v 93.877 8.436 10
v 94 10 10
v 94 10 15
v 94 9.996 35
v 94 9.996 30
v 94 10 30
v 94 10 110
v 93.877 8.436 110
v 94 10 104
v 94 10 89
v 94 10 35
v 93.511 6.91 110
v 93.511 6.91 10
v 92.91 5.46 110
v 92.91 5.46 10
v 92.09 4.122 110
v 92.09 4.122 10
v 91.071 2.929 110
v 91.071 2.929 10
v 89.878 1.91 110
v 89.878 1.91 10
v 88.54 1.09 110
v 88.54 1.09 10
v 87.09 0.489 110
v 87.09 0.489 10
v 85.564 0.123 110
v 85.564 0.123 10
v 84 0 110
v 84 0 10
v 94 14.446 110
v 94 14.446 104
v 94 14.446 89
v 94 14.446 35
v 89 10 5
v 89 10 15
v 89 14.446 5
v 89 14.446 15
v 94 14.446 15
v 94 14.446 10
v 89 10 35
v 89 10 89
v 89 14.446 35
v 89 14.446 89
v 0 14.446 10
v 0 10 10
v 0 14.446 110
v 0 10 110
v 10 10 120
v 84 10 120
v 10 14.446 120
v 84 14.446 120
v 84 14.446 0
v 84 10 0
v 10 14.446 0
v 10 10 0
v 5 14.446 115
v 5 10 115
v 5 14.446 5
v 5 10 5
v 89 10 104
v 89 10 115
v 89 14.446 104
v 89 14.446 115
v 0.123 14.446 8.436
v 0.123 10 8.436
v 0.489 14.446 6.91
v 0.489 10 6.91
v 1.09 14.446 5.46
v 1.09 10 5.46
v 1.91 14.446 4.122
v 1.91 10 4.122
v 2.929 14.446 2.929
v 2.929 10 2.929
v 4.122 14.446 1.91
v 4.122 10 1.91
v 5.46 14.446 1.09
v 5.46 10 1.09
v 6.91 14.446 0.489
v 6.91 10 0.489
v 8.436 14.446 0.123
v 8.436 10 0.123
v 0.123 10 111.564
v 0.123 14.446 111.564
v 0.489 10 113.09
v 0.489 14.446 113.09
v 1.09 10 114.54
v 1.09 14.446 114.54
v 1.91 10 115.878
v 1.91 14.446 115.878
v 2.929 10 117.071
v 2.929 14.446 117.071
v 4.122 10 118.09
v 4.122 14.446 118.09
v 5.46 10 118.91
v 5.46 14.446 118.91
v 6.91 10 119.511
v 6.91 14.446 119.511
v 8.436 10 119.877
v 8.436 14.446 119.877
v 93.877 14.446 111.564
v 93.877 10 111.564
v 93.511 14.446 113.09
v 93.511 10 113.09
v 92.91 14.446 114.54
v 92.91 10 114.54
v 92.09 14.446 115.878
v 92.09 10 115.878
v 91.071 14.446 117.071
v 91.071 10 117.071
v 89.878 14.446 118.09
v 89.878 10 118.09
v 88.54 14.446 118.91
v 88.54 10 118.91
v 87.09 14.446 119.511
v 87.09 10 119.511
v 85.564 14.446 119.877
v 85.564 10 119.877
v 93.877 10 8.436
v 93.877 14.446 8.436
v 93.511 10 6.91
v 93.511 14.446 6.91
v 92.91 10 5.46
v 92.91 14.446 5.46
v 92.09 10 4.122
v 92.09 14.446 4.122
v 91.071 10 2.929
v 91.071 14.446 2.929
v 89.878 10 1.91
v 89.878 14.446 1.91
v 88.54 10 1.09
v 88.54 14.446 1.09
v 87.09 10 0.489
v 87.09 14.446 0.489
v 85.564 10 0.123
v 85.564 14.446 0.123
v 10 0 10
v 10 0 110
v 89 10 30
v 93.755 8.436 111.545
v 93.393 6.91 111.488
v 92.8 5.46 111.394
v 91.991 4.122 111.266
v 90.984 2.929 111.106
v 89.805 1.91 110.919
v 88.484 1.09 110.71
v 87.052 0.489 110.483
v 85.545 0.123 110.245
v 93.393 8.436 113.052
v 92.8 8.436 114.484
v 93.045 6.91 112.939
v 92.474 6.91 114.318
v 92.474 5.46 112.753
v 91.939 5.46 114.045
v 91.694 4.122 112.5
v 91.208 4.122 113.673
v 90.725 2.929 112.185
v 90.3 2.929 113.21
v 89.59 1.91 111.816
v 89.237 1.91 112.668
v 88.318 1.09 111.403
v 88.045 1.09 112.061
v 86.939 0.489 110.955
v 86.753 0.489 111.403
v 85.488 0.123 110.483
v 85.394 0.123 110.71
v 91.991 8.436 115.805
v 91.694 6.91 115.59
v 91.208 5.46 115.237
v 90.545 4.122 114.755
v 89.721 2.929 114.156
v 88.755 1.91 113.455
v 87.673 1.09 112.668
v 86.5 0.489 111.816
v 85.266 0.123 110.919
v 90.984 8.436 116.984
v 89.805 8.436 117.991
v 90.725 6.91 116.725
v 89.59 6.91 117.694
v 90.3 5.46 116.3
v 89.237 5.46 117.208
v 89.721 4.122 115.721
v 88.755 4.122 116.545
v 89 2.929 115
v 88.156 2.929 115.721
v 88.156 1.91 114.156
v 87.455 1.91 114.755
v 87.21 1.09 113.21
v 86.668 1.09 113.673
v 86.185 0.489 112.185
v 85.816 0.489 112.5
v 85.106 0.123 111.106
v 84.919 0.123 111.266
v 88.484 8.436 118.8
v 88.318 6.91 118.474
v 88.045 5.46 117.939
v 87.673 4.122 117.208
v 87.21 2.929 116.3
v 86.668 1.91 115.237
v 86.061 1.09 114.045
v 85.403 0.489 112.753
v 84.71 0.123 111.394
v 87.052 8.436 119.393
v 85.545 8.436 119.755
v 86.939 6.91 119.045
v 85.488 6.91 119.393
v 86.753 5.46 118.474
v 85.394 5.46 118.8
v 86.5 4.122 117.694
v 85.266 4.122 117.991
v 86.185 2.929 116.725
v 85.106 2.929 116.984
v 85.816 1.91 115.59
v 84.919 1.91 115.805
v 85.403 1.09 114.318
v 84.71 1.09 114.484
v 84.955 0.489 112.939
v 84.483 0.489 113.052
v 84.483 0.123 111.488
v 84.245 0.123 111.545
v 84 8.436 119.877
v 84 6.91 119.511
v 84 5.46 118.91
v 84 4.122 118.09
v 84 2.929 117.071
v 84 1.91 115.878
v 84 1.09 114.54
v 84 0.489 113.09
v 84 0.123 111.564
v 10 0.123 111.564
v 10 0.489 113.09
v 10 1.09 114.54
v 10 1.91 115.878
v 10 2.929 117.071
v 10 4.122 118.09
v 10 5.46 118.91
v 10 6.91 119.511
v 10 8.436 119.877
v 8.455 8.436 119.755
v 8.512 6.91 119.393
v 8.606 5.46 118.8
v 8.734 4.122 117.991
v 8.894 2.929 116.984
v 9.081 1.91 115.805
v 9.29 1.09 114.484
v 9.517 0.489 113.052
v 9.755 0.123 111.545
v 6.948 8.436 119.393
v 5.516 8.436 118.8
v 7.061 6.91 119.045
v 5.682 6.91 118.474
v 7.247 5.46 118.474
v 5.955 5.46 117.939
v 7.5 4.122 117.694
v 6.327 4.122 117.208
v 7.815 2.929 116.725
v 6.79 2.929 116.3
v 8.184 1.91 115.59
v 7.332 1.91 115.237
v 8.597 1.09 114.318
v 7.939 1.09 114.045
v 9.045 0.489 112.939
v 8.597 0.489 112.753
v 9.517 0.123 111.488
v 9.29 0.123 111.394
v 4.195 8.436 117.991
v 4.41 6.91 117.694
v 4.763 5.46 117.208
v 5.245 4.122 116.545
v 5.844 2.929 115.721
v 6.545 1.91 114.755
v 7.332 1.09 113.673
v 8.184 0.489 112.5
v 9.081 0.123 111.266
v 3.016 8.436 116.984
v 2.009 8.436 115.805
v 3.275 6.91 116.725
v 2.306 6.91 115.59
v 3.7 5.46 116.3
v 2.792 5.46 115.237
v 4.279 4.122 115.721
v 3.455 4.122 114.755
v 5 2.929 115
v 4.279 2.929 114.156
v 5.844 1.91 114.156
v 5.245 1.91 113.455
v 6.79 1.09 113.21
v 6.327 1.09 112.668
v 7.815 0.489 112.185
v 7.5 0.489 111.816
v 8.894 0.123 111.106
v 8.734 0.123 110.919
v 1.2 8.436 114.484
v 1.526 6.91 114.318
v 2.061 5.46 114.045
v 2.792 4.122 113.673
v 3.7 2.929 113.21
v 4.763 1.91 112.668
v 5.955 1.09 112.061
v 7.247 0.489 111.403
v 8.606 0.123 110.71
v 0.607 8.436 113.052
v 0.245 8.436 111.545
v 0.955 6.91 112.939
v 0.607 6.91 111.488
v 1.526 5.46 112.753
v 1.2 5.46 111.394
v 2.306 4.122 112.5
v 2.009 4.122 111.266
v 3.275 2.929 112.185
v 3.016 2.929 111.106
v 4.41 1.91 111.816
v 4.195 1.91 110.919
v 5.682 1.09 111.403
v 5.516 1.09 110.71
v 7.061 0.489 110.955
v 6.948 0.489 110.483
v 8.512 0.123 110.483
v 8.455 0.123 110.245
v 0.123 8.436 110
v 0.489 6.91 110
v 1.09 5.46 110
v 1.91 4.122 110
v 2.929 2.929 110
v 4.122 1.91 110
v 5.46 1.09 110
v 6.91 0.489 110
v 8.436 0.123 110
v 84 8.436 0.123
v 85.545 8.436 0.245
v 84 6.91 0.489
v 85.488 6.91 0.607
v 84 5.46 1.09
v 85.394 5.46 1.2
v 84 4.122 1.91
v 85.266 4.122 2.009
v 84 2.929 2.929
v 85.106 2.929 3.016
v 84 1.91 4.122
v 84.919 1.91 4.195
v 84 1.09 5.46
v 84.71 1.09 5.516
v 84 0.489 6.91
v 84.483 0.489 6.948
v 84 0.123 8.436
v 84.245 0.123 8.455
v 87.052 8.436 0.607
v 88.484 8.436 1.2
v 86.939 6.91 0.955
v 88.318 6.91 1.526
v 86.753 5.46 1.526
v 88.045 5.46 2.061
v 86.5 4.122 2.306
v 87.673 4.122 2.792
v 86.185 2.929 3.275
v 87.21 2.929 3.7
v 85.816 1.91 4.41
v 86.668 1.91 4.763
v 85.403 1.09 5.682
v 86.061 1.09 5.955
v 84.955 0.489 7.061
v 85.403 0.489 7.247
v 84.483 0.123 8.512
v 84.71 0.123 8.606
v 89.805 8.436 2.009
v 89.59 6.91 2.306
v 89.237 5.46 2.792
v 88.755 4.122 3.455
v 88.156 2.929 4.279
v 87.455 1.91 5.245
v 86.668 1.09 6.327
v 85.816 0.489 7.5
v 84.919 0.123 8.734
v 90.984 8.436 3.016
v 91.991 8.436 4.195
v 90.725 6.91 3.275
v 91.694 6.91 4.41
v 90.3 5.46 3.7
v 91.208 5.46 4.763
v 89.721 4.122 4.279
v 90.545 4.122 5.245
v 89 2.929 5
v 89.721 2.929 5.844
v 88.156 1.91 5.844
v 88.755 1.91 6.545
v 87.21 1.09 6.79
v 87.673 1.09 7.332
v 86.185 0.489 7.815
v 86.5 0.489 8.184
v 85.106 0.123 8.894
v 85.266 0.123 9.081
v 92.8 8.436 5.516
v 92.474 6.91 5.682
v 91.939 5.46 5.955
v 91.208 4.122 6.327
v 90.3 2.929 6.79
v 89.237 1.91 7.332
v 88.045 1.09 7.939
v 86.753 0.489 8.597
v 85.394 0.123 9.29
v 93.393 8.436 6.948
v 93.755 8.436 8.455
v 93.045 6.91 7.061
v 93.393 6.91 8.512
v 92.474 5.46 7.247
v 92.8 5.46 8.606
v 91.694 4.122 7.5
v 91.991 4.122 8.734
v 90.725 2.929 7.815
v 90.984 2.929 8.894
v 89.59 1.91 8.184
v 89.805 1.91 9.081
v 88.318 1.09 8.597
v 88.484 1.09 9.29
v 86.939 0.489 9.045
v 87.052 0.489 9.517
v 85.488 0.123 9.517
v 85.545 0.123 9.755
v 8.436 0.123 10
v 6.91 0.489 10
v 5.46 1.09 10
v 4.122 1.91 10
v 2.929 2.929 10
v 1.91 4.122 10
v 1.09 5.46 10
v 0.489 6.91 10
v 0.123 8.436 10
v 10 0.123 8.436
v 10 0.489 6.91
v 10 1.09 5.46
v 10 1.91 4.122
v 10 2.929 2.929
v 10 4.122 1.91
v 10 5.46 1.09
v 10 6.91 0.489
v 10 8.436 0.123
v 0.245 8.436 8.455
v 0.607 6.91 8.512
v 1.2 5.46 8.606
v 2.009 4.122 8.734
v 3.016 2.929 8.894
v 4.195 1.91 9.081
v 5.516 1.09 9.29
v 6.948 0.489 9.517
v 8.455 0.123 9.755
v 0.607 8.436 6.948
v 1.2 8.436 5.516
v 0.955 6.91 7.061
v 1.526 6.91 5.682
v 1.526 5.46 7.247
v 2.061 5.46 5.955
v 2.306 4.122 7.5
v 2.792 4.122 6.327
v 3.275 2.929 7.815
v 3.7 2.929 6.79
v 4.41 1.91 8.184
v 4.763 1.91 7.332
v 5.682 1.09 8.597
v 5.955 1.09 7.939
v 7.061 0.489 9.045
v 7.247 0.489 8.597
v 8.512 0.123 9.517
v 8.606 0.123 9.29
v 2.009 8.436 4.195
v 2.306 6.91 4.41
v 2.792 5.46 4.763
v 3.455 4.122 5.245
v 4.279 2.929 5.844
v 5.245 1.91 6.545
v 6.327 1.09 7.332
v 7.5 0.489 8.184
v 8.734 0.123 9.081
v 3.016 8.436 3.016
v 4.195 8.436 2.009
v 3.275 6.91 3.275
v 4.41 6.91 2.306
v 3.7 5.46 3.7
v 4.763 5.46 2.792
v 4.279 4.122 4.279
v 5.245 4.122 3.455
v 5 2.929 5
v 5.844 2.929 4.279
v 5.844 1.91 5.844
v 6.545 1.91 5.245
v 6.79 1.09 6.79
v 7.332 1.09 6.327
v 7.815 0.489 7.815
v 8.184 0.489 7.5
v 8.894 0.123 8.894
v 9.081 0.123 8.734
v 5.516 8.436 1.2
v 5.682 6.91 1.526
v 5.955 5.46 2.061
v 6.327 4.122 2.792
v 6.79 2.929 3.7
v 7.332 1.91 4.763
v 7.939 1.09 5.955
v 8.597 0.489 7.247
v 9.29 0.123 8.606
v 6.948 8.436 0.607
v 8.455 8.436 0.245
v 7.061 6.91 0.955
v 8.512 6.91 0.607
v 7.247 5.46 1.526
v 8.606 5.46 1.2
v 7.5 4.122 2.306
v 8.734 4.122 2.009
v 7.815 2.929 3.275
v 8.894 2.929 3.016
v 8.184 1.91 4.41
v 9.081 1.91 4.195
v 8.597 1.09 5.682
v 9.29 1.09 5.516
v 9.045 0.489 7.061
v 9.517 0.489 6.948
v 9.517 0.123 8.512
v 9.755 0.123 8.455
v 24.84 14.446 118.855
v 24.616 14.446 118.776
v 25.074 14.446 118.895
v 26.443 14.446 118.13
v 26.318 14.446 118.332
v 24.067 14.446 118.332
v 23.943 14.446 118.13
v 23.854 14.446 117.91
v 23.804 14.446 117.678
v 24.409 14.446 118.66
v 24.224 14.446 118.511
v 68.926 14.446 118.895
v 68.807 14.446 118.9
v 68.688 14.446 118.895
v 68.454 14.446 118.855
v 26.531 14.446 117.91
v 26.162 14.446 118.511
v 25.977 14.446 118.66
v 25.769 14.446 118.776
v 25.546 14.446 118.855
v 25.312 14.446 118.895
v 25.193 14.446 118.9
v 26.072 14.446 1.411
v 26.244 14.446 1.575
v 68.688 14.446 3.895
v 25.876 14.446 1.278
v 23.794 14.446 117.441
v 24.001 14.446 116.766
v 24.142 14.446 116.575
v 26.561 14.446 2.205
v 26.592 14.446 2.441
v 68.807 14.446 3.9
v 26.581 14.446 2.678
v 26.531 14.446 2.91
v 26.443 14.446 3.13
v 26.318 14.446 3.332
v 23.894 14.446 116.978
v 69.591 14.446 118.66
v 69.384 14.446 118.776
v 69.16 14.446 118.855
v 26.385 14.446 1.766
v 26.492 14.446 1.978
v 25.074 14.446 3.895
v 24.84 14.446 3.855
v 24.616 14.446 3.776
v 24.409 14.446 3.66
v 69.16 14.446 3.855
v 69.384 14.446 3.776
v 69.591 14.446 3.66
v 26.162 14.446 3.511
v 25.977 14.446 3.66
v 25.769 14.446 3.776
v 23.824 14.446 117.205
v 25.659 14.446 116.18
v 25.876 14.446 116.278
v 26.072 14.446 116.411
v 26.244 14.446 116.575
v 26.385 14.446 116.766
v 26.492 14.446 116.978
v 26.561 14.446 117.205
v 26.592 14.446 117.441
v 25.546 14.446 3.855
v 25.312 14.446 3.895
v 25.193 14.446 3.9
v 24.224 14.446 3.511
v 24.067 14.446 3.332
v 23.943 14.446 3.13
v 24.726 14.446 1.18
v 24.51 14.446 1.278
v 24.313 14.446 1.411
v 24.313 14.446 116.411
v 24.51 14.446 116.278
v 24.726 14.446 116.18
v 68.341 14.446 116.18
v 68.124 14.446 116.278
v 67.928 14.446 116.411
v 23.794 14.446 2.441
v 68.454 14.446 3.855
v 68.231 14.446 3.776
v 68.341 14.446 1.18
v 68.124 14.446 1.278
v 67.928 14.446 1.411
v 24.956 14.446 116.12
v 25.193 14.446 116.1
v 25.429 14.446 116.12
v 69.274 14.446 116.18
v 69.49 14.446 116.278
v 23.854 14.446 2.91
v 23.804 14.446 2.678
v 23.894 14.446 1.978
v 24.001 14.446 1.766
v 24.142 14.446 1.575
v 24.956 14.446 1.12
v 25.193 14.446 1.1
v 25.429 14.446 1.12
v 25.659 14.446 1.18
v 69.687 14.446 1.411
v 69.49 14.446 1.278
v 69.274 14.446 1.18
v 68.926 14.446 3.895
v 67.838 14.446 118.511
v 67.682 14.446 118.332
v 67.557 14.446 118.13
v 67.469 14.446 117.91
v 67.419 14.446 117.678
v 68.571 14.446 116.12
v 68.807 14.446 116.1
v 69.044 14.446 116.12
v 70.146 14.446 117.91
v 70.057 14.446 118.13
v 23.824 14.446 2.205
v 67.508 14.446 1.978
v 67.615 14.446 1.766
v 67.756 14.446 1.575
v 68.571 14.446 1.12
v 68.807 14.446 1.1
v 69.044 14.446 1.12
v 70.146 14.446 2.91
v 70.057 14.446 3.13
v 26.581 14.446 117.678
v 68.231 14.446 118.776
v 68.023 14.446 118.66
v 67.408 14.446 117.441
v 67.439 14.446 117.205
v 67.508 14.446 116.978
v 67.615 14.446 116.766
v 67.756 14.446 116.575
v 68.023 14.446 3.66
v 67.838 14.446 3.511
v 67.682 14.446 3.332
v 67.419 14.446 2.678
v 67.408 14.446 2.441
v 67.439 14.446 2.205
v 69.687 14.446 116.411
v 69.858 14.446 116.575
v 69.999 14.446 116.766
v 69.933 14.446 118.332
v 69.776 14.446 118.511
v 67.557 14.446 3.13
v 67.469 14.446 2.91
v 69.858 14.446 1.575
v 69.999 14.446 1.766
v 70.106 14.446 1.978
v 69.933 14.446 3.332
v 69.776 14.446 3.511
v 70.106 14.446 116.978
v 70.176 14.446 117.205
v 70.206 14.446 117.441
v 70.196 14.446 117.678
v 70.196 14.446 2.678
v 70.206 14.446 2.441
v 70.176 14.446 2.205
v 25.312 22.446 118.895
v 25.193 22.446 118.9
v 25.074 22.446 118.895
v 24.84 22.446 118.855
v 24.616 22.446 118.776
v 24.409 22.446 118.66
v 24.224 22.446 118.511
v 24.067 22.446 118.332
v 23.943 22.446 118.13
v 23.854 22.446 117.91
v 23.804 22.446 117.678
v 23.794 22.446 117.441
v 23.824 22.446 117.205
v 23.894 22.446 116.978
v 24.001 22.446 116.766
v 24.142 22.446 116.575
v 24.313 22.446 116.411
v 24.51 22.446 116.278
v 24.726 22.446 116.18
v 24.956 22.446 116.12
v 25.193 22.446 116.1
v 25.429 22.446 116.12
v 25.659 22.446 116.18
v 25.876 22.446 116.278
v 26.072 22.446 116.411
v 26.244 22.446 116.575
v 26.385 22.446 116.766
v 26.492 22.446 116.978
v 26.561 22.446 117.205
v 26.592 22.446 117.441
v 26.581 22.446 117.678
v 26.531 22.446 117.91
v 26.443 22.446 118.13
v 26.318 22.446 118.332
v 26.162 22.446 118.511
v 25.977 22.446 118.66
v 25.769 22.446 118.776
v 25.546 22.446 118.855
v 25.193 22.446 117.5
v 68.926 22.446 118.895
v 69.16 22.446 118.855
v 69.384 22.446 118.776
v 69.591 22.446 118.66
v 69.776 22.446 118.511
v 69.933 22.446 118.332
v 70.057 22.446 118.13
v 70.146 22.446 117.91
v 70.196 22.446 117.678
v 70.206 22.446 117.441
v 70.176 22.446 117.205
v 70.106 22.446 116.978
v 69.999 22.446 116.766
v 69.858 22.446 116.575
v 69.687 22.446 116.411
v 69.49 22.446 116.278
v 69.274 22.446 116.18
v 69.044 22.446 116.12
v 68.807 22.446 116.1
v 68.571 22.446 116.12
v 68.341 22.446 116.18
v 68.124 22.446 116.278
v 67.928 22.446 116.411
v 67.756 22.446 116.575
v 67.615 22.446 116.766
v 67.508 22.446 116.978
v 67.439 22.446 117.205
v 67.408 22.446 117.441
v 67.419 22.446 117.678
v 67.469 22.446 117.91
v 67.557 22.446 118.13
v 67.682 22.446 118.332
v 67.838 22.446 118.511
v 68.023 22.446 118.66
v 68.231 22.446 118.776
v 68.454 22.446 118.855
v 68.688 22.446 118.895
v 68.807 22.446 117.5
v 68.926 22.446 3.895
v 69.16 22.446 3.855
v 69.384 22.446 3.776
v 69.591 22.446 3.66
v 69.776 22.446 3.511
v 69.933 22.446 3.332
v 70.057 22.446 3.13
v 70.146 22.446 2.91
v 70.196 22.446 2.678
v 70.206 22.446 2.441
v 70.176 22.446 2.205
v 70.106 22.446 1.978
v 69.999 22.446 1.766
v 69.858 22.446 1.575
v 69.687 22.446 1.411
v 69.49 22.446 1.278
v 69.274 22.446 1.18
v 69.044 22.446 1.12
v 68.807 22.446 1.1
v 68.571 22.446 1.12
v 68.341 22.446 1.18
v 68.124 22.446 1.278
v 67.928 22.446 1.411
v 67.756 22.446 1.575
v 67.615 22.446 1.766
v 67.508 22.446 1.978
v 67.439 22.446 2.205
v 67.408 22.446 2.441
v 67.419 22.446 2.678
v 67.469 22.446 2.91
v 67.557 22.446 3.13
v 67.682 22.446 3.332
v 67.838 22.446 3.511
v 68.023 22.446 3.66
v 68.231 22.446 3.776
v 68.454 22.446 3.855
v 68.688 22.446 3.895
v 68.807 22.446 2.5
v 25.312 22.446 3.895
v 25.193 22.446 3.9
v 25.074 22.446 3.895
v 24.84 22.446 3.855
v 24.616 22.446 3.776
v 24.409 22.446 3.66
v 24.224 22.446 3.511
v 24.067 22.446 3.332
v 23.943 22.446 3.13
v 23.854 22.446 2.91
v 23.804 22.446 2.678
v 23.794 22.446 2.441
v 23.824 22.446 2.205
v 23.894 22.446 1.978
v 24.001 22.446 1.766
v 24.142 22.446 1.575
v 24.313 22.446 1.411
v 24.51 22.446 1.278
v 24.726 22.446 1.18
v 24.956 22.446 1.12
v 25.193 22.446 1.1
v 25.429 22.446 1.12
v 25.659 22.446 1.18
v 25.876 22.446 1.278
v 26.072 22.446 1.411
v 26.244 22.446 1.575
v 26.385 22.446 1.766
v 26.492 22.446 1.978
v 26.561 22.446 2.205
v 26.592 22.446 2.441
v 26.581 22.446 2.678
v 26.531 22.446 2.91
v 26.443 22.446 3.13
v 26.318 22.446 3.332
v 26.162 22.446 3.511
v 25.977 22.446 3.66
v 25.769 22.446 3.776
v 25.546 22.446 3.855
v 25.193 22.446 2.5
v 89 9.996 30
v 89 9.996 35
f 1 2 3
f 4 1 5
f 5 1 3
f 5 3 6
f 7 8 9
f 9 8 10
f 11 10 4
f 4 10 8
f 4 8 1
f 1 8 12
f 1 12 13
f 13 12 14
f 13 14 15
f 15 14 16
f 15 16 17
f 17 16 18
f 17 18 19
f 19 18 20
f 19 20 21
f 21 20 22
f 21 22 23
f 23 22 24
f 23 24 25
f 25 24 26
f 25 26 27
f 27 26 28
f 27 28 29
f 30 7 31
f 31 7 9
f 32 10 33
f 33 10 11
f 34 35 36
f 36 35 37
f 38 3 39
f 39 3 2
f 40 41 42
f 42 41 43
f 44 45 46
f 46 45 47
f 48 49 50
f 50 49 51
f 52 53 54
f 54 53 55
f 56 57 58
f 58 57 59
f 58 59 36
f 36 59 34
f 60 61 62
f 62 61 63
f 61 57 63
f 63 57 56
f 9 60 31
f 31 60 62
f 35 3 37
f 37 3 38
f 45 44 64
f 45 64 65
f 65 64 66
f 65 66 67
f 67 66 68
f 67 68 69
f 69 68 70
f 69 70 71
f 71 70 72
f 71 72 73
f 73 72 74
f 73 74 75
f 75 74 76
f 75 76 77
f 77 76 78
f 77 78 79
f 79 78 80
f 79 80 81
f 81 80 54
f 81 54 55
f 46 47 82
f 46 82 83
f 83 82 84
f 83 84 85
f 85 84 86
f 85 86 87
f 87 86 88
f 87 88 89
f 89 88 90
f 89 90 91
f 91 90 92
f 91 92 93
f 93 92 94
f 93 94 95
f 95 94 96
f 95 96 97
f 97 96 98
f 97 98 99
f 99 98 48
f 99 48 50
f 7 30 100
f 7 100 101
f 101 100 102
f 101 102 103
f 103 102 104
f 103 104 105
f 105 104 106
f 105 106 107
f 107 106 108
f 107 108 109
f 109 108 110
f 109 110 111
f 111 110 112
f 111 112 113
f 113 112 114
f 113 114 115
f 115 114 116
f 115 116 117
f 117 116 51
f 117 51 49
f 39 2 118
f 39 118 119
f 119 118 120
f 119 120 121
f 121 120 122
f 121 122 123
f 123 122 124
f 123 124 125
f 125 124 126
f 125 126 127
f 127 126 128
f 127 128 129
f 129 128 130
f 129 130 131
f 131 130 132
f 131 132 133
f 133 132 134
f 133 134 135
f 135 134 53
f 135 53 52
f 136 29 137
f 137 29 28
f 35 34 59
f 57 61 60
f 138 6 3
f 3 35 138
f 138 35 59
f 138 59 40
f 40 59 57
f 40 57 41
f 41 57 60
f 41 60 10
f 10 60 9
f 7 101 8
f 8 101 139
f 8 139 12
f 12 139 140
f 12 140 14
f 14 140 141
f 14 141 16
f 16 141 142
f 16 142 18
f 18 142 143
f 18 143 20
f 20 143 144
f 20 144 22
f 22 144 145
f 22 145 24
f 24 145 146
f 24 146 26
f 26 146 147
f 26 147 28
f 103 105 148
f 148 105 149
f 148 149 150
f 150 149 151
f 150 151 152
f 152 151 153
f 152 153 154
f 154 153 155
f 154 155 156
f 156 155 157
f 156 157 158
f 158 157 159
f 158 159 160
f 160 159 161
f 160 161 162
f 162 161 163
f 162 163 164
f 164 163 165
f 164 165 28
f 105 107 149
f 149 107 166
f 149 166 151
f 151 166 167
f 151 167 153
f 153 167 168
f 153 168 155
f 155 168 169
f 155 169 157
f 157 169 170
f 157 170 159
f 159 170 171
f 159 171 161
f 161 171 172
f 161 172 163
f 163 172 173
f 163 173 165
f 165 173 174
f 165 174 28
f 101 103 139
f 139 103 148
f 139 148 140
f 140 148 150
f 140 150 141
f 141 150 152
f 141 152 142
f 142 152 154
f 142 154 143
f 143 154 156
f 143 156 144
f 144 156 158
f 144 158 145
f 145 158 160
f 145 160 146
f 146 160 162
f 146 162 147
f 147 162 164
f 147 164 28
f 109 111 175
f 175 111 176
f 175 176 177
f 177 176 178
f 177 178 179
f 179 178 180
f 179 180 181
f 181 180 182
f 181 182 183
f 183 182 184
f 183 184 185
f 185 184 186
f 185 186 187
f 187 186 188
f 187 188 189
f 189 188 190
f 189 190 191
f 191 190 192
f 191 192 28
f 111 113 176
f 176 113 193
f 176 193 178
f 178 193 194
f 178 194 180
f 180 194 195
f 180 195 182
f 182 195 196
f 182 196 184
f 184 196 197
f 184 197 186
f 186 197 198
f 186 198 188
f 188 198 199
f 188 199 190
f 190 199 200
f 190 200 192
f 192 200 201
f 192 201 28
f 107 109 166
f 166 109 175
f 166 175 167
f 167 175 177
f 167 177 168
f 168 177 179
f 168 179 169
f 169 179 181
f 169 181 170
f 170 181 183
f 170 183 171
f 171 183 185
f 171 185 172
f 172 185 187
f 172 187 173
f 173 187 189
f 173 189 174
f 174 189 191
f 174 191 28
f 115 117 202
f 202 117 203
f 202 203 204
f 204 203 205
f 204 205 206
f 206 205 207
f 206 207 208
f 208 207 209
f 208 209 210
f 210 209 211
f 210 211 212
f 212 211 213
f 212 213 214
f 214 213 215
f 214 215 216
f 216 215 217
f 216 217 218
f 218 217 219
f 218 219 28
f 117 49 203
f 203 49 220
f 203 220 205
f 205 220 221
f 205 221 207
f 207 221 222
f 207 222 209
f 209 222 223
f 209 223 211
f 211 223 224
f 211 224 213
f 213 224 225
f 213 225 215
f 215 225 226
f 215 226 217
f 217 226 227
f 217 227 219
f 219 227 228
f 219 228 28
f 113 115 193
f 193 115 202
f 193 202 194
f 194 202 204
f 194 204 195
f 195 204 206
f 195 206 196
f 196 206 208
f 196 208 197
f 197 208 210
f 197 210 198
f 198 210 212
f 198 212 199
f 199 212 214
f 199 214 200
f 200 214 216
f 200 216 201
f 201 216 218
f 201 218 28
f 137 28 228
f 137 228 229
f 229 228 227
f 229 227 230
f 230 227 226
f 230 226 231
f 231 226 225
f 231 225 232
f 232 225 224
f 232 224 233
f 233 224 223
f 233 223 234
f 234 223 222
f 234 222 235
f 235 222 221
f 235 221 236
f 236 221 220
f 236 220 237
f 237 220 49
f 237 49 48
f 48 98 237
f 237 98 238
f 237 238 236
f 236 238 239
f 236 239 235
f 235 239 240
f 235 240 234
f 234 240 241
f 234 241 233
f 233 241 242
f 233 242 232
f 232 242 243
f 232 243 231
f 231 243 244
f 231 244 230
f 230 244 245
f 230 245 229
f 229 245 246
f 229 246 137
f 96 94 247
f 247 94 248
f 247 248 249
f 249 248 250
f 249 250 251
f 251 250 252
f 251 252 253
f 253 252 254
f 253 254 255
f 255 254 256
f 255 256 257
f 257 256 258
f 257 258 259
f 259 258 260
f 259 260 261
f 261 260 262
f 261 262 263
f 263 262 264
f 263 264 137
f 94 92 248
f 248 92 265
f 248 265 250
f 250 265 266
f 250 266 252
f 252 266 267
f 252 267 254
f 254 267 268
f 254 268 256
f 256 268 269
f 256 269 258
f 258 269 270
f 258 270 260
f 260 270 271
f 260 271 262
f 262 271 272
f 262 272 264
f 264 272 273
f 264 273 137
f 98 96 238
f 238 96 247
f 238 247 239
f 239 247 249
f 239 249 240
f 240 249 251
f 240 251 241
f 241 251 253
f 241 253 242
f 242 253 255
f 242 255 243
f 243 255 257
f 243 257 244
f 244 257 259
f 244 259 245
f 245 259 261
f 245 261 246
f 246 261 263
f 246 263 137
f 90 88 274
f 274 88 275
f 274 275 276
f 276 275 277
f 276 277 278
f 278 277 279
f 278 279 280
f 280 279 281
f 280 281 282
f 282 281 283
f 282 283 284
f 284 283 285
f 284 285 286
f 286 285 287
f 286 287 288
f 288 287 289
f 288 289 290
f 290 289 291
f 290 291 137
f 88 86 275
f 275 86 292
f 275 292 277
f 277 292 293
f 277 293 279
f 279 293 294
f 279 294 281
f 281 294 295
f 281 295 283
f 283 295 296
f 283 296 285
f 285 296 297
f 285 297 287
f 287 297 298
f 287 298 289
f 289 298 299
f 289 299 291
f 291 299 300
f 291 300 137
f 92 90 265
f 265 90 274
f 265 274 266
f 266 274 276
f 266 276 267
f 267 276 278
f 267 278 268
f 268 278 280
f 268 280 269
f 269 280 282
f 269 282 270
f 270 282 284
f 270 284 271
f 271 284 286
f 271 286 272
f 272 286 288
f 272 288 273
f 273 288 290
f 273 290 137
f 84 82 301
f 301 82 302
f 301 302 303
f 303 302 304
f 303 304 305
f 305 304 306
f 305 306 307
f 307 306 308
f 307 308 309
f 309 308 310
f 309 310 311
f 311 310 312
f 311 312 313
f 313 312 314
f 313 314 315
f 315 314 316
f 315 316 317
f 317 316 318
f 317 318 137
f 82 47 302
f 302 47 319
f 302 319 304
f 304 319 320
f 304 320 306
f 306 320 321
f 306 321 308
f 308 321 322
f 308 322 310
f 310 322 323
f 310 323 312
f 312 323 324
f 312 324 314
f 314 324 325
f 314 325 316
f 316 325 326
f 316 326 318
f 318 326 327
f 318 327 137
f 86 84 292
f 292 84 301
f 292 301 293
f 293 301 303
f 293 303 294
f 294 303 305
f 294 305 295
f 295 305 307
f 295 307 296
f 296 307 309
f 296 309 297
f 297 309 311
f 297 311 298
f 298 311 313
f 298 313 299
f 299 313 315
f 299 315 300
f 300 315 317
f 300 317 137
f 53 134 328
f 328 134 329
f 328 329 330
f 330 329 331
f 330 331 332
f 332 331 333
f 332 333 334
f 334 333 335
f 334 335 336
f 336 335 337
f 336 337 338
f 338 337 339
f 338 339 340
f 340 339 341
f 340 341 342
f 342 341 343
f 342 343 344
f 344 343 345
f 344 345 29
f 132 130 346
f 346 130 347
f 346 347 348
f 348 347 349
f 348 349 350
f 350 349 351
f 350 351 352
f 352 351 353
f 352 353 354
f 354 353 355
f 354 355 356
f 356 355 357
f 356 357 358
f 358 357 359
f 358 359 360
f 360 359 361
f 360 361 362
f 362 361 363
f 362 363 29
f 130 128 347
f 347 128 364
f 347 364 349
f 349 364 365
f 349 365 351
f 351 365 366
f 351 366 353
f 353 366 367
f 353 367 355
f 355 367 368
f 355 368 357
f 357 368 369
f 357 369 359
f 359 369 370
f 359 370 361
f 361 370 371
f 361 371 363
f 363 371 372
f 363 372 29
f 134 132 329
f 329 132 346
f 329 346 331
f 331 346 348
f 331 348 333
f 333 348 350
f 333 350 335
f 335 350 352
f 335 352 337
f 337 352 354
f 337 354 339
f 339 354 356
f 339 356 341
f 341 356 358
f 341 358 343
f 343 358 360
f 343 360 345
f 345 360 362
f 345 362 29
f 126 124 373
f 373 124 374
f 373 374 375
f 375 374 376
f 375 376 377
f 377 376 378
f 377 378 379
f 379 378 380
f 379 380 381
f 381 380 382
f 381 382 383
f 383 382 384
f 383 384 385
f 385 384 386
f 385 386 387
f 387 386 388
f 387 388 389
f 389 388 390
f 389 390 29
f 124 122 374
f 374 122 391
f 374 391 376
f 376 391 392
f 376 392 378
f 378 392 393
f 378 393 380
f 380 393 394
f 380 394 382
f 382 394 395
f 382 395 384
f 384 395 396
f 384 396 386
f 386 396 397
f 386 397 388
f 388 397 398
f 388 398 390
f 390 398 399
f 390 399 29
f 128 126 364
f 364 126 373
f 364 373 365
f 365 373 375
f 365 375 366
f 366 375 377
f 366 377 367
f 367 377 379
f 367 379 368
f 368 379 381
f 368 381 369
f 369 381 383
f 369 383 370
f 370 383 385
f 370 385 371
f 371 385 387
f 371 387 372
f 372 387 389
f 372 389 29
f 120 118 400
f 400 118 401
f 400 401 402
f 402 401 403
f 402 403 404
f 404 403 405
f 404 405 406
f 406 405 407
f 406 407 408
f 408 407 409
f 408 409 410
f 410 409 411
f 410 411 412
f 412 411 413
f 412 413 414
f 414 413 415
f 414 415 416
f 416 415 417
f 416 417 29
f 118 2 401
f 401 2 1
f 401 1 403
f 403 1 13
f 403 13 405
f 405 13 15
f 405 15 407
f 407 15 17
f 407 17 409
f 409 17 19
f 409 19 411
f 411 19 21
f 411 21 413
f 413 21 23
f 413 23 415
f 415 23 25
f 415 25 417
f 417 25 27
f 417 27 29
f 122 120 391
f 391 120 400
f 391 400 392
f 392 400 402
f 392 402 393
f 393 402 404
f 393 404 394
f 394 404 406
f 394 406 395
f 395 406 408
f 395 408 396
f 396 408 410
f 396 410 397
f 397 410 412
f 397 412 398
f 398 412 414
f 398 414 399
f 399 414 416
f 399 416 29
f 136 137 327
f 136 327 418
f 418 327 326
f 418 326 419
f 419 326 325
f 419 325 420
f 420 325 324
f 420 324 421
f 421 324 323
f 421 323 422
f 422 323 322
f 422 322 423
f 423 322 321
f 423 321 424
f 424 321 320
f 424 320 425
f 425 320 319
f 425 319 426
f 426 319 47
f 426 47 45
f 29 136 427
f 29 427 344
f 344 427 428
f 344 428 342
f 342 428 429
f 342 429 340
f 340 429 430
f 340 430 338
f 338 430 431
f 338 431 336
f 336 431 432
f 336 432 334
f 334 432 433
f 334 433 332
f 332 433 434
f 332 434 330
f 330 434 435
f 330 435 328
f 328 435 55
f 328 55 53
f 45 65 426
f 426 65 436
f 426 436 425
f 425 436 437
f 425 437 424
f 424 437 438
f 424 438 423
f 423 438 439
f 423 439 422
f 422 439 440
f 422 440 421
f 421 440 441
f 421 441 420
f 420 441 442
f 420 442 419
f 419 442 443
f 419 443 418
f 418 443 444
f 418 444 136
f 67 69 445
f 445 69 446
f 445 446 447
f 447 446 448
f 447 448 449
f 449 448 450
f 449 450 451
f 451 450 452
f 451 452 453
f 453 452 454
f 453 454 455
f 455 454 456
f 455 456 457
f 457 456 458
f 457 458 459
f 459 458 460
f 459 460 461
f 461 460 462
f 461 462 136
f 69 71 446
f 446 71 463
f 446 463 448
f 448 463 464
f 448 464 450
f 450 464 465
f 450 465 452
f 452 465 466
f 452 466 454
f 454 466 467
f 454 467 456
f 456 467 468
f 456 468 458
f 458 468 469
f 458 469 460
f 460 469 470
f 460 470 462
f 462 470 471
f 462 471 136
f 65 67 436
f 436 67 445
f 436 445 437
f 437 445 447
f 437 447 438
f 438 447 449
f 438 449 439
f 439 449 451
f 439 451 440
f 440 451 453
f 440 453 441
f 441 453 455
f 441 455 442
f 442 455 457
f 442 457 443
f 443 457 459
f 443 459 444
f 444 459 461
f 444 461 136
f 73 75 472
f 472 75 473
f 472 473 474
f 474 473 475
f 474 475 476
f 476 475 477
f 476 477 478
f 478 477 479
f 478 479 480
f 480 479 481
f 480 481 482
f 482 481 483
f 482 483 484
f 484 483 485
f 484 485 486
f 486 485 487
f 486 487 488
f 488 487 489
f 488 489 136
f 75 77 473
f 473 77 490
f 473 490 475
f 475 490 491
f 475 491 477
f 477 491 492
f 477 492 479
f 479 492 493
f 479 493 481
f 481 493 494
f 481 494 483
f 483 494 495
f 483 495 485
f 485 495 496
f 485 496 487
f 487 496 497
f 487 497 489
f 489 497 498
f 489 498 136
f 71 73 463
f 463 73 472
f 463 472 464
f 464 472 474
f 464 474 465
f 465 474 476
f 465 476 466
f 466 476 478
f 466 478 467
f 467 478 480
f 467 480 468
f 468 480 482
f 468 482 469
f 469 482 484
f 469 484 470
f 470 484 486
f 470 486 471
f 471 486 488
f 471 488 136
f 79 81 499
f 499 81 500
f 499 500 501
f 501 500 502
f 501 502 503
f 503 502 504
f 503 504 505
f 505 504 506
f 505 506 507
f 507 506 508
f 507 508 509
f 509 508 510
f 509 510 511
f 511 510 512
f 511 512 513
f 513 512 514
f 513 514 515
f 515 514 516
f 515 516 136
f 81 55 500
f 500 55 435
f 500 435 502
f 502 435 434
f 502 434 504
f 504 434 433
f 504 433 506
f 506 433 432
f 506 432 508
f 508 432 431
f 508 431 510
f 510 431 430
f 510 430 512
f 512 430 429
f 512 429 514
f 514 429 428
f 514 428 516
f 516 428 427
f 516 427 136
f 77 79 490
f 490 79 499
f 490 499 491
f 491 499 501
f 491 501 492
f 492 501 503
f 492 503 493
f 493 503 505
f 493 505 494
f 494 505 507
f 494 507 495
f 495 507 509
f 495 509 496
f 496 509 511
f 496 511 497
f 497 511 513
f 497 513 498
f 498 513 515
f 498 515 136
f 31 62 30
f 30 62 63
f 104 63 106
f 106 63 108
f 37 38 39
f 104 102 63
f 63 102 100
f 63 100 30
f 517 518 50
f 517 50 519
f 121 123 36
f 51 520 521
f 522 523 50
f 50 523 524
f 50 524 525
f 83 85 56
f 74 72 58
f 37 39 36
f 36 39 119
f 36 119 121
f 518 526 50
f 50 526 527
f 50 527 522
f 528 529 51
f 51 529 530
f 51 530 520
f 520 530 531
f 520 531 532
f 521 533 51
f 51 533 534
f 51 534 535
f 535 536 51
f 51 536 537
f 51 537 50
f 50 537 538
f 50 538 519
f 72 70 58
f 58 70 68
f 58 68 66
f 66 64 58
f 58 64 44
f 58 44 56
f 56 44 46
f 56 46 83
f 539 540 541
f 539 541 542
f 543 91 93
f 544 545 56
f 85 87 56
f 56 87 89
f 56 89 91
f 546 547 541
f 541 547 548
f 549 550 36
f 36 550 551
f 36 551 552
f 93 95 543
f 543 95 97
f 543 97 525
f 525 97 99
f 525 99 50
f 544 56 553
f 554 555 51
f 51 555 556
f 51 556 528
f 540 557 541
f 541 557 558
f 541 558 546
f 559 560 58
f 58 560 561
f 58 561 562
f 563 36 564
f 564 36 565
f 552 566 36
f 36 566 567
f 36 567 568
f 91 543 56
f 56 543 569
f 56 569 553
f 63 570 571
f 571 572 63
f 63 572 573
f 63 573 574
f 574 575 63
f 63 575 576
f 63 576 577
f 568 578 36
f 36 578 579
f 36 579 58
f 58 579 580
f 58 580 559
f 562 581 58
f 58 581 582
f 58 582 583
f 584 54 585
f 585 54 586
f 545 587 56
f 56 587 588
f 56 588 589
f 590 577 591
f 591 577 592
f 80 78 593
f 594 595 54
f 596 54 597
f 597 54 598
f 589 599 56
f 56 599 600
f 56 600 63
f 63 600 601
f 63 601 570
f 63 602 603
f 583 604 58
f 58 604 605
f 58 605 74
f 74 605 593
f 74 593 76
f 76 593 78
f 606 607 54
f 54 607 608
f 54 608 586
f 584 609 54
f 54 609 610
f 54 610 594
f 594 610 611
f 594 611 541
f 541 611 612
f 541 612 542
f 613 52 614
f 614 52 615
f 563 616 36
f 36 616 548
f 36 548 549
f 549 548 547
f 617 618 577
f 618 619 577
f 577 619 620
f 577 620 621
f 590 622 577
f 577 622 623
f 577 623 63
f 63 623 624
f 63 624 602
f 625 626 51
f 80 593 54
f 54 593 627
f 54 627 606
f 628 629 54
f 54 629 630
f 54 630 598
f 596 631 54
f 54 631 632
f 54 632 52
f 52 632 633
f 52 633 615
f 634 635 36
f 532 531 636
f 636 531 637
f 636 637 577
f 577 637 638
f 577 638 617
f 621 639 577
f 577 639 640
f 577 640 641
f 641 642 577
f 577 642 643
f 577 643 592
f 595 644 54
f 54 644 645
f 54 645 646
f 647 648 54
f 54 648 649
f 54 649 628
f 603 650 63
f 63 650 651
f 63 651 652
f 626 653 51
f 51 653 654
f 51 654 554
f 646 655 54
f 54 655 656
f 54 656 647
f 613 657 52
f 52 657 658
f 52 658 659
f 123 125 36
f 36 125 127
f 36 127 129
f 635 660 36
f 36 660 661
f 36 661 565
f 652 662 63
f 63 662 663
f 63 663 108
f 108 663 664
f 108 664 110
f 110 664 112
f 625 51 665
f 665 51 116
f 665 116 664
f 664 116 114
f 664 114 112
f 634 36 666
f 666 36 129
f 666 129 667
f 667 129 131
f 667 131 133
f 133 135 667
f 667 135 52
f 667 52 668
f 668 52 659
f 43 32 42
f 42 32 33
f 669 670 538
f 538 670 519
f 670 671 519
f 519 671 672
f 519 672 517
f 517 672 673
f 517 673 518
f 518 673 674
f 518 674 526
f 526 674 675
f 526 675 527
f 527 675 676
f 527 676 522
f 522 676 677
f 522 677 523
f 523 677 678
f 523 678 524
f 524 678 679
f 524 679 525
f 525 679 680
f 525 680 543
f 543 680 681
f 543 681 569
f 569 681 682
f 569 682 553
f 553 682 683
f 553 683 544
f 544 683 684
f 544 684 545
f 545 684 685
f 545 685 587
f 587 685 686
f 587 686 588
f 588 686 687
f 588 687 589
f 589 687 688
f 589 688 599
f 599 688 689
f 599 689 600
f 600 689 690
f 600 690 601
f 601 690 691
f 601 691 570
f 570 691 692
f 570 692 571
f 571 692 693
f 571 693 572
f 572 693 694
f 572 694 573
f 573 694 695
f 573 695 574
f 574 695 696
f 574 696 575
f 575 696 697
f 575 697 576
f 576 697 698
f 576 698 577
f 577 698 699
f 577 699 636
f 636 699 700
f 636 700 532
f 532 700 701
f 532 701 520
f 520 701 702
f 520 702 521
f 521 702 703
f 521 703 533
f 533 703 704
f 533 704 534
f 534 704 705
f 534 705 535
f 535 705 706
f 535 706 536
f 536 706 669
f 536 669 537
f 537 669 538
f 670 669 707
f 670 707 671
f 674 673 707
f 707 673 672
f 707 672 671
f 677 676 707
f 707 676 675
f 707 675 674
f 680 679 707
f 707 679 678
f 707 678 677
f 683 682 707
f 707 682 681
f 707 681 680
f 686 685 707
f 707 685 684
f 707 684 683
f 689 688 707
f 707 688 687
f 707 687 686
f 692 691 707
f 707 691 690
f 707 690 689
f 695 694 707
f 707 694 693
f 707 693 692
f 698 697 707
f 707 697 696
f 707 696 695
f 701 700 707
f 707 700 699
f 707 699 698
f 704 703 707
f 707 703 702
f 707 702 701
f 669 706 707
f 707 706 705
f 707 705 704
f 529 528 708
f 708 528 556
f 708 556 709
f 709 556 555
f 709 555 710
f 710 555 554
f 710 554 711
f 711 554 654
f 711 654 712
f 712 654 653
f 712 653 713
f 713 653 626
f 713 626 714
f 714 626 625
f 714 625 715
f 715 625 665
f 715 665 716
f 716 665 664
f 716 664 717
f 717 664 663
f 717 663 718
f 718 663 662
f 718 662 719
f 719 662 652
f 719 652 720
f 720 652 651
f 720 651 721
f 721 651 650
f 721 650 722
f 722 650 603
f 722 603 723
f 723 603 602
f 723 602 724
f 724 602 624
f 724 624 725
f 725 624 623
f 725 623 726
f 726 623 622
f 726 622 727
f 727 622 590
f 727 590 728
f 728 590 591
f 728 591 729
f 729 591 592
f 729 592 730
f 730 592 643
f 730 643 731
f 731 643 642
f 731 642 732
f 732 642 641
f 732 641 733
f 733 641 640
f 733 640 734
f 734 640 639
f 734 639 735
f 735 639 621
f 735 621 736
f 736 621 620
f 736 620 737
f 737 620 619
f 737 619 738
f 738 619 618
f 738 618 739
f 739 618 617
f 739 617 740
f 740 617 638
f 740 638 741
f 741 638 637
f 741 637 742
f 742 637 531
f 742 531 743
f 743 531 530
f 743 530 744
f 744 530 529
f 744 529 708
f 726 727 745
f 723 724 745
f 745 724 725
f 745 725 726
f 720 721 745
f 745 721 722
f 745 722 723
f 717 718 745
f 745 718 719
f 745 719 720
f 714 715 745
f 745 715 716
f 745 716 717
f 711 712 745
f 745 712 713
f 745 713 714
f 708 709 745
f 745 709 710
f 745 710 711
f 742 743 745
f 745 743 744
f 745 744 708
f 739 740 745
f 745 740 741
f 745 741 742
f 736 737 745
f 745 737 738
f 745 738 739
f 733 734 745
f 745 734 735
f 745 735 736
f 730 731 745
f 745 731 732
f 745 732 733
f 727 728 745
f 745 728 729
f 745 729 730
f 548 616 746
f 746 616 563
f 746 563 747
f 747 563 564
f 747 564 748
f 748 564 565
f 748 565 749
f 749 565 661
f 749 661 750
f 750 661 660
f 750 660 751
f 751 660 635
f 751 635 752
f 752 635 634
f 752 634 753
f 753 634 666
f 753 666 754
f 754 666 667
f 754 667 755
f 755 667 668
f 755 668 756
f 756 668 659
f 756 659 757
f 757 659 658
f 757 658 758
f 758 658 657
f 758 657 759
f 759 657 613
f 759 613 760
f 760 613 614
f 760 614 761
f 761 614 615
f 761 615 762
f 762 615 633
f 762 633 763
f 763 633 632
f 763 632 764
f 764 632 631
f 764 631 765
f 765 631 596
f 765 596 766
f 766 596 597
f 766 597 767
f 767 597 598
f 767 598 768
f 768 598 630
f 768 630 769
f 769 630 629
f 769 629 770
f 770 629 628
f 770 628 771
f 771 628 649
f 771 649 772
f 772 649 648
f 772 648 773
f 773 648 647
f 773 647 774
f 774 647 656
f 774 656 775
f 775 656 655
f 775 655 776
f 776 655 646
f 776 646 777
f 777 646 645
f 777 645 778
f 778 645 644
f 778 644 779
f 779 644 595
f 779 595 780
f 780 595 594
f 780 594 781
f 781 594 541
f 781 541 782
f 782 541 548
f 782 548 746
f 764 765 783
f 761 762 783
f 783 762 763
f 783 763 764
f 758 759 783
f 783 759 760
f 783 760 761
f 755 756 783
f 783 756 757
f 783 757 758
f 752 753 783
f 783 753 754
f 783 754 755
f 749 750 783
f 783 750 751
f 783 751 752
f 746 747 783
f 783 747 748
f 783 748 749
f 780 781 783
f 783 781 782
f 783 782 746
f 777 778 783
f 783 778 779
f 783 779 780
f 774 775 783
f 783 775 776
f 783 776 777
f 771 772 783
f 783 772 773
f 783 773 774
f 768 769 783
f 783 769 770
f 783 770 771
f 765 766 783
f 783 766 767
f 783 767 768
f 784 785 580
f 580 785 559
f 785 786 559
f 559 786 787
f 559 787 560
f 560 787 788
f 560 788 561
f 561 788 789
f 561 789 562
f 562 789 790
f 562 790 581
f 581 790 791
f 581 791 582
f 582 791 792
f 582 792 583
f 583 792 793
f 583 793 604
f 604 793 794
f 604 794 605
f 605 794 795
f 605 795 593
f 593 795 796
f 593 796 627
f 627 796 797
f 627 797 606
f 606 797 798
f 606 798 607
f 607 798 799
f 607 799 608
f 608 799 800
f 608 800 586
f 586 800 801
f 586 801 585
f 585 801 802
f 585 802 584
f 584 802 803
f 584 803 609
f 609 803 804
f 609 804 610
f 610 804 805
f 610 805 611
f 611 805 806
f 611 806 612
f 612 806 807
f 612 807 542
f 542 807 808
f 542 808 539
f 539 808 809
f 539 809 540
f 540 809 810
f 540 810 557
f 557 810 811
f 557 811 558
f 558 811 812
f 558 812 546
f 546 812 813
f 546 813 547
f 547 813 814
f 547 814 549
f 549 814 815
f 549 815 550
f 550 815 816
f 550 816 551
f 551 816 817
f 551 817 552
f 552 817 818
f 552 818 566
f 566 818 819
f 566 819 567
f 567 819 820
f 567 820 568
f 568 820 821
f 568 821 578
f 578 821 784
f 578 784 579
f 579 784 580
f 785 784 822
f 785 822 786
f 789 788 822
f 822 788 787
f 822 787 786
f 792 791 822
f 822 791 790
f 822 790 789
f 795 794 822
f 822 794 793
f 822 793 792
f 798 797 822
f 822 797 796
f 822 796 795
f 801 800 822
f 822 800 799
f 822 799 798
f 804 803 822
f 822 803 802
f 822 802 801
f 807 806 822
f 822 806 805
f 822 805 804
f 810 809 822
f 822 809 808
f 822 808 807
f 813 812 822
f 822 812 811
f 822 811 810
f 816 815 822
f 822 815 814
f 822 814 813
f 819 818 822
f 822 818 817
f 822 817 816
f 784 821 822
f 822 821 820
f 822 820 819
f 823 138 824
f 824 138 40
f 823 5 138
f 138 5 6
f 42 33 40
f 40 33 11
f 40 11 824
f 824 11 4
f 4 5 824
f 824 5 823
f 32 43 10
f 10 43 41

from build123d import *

# Parameters (mm, degrees)
SKETCH_1_W           = 94
SKETCH_1_H           = 30
EXTRUDE_2_DEPTH      = 120
SKETCH_2_W           = 84
SKETCH_2_H           = 110
CUT_EXTRUDE_1_DEPTH  = 20
SKETCH_4_W           = 12.8042226
SKETCH_4_H           = 20
CUT_EXTRUDE_5_DEPTH  = 20
SKETCH_9_W           = 17.034378807
SKETCH_9_H           = 15
CUT_EXTRUDE_6_DEPTH  = 20
SKETCH_10_W          = 26
SKETCH_10_H          = 34
EXTRUDE_2_2_DEPTH    = 26
SKETCH_16_R          = 11.5
CUT_EXTRUDE_8_DEPTH  = 126.231871204
FILLET_2_R           = 10
FILLET_3_R           = 10
FILLET_4_R           = 10
SKETCH_20_R          = 1.5
CUT_EXTRUDE_12_DEPTH = 10
SKETCH_21_W          = 28.864787598
SKETCH_21_H          = 27.787348415
CUT_EXTRUDE_13_DEPTH = 40
CUT_EXTRUDE_START    = -50
SKETCH_22_W          = 124.707119116
SKETCH_22_H          = 18.117072108
CUT_EXTRUDE_14_DEPTH = 150
SKETCH_23_R          = 1.4
EXTRUDE_4_DEPTH      = 8
SKETCH_25_W          = 5
SKETCH_25_H          = 5
CUT_EXTRUDE_15_DEPTH = 4.45
SKETCH_28_W          = 5
SKETCH_28_H          = 5
EXTRUDE_5_DEPTH      = 4.45


with BuildPart() as part:
    # 스케치1 → Extrude 2 (new body)
    with BuildSketch(Plane.XY):
        with Locations((47, 15)):
            Rectangle(SKETCH_1_W, SKETCH_1_H)
    extrude(amount=EXTRUDE_2_DEPTH)

    # 스케치2 → 컷-돌출1 (cut)
    with BuildSketch(Plane(origin=(0, 30, 0), x_dir=(1, 0, 0), z_dir=(0, 1, 0))):
        with Locations((47, -60)):
            Rectangle(SKETCH_2_W, SKETCH_2_H)
    extrude(amount=-CUT_EXTRUDE_1_DEPTH, mode=Mode.SUBTRACT)

    # 스케치4 → 컷-돌출5 (cut)
    with BuildSketch(Plane(origin=(0, 30, 0), x_dir=(1, 0, 0), z_dir=(0, 1, 0))):
        with Locations((95.4021113, -94)):
            Rectangle(SKETCH_4_W, SKETCH_4_H)
    extrude(amount=-CUT_EXTRUDE_5_DEPTH, mode=Mode.SUBTRACT)

    # 스케치9 → 컷-돌출6 (cut)
    with BuildSketch(Plane(origin=(0, 30, 0), x_dir=(1, 0, 0), z_dir=(0, 1, 0))):
        with Locations((97.517189403, -22.5)):
            Rectangle(SKETCH_9_W, SKETCH_9_H)
    extrude(amount=-CUT_EXTRUDE_6_DEPTH, mode=Mode.SUBTRACT)

    # 스케치10 → Extrude 2 2 (add)
    with BuildSketch(Plane(origin=(0, 0, 0), x_dir=(-1, 0, 0), z_dir=(0, -1, 0))):
        with Locations((-47, -59.883065639)):
            Rectangle(SKETCH_10_W, SKETCH_10_H)
    extrude(amount=EXTRUDE_2_2_DEPTH)

    # 스케치16 → 컷-돌출8 (cut, through all)
    with BuildSketch(Plane(origin=(0, 0, 42.883065639), x_dir=(-1, 0, 0), z_dir=(0, 0, -1))):
        with Locations((-47, -13)):
            Circle(SKETCH_16_R)
    extrude(amount=-CUT_EXTRUDE_8_DEPTH, mode=Mode.SUBTRACT)

    # 필렛2
    fillet_2_edges = [part.edges().sort_by_distance(p)[0] for p in [
        (0, 15, 0),
    ]]
    fillet(fillet_2_edges, radius=FILLET_2_R)

    # 필렛3
    fillet_3_edges = [part.edges().sort_by_distance(p)[0] for p in [
        (94, 15, 120),
        (0, 15, 120),
        (94, 15, 0),
    ]]
    fillet(fillet_3_edges, radius=FILLET_3_R)

    # 필렛4
    fillet_4_edges = [part.edges().sort_by_distance(p)[0] for p in [
        (47, 0, 0),
        (2.928932188, 0, 2.928932188),
        (0, 0, 60),
        (47, 0, 120),
        (94, 0, 60),
        (91.071067812, 0, 2.928932188),
        (91.071067812, 0, 117.071067812),
        (2.928932188, 0, 117.071067812),
    ]]
    fillet(fillet_4_edges, radius=FILLET_4_R - 0.0001)  # a hair under: the kernel refuses the full size

    # 스케치20 → 컷-돌출12 (cut)
    with BuildSketch(Plane(origin=(0, 30, 0), x_dir=(1, 0, 0), z_dir=(0, 1, 0))):
        with Locations(Location((25.192810861, -2.5, 0), (0, 0, 270))):
            Circle(SKETCH_20_R)
        with Locations(Location((68.807189139, -2.5, 0), (0, 0, 90))):
            Circle(SKETCH_20_R)
        with Locations(Location((25.192810861, -117.5, 0), (0, 0, 270))):
            Circle(SKETCH_20_R)
        with Locations(Location((68.807189139, -117.5, 0), (0, 0, 90))):
            Circle(SKETCH_20_R)
    extrude(amount=-CUT_EXTRUDE_12_DEPTH, mode=Mode.SUBTRACT)

    # 스케치21 → 컷-돌출13 (cut)
    with BuildSketch(Plane.XY.offset(76.883065639)):
        with Locations((48.432393799, -13.893674208)):
            Rectangle(SKETCH_21_W, SKETCH_21_H)
    extrude(amount=-CUT_EXTRUDE_13_DEPTH, mode=Mode.SUBTRACT)

    # 스케치22 → 컷-돌출14 (cut)
    with BuildSketch(Plane(origin=(5, 0, 0), x_dir=(0, 0, -1), z_dir=(1, 0, 0)).offset(CUT_EXTRUDE_START)):
        with Locations((-62.353559558, 23.504988421)):
            Rectangle(SKETCH_22_W, SKETCH_22_H)
    extrude(amount=CUT_EXTRUDE_14_DEPTH, mode=Mode.SUBTRACT)

    # 스케치23 → 보스-돌출4 (add)
    with BuildSketch(Plane(origin=(0, 14.446452367, 0), x_dir=(1, 0, 0), z_dir=(0, 1, 0))):
        with Locations(Location((25.192810861, -117.5, 0), (0, 0, 270))):
            Circle(SKETCH_23_R)
        with Locations(Location((68.807189139, -117.5, 0), (0, 0, 90))):
            Circle(SKETCH_23_R)
        with Locations(Location((25.192810861, -2.5, 0), (0, 0, 270))):
            Circle(SKETCH_23_R)
        with Locations(Location((68.807189139, -2.5, 0), (0, 0, 90))):
            Circle(SKETCH_23_R)
    extrude(amount=EXTRUDE_4_DEPTH)

    # 스케치25 → 컷-돌출15 (cut)
    with BuildSketch(Plane(origin=(0, 14.446452367, 0), x_dir=(1, 0, 0), z_dir=(0, 1, 0))):
        with Locations((91.5, -32.5)):
            Rectangle(SKETCH_25_W, SKETCH_25_H)
    extrude(amount=-CUT_EXTRUDE_15_DEPTH, mode=Mode.SUBTRACT)

    # 스케치28 → 보스-돌출5 (add)
    with BuildSketch(Plane(origin=(0, 14.446452367, 0), x_dir=(1, 0, 0), z_dir=(0, 1, 0))):
        with Locations((91.5, -86.5)):
            Rectangle(SKETCH_28_W, SKETCH_28_H)
    extrude(amount=-EXTRUDE_5_DEPTH)


solid = part.part
